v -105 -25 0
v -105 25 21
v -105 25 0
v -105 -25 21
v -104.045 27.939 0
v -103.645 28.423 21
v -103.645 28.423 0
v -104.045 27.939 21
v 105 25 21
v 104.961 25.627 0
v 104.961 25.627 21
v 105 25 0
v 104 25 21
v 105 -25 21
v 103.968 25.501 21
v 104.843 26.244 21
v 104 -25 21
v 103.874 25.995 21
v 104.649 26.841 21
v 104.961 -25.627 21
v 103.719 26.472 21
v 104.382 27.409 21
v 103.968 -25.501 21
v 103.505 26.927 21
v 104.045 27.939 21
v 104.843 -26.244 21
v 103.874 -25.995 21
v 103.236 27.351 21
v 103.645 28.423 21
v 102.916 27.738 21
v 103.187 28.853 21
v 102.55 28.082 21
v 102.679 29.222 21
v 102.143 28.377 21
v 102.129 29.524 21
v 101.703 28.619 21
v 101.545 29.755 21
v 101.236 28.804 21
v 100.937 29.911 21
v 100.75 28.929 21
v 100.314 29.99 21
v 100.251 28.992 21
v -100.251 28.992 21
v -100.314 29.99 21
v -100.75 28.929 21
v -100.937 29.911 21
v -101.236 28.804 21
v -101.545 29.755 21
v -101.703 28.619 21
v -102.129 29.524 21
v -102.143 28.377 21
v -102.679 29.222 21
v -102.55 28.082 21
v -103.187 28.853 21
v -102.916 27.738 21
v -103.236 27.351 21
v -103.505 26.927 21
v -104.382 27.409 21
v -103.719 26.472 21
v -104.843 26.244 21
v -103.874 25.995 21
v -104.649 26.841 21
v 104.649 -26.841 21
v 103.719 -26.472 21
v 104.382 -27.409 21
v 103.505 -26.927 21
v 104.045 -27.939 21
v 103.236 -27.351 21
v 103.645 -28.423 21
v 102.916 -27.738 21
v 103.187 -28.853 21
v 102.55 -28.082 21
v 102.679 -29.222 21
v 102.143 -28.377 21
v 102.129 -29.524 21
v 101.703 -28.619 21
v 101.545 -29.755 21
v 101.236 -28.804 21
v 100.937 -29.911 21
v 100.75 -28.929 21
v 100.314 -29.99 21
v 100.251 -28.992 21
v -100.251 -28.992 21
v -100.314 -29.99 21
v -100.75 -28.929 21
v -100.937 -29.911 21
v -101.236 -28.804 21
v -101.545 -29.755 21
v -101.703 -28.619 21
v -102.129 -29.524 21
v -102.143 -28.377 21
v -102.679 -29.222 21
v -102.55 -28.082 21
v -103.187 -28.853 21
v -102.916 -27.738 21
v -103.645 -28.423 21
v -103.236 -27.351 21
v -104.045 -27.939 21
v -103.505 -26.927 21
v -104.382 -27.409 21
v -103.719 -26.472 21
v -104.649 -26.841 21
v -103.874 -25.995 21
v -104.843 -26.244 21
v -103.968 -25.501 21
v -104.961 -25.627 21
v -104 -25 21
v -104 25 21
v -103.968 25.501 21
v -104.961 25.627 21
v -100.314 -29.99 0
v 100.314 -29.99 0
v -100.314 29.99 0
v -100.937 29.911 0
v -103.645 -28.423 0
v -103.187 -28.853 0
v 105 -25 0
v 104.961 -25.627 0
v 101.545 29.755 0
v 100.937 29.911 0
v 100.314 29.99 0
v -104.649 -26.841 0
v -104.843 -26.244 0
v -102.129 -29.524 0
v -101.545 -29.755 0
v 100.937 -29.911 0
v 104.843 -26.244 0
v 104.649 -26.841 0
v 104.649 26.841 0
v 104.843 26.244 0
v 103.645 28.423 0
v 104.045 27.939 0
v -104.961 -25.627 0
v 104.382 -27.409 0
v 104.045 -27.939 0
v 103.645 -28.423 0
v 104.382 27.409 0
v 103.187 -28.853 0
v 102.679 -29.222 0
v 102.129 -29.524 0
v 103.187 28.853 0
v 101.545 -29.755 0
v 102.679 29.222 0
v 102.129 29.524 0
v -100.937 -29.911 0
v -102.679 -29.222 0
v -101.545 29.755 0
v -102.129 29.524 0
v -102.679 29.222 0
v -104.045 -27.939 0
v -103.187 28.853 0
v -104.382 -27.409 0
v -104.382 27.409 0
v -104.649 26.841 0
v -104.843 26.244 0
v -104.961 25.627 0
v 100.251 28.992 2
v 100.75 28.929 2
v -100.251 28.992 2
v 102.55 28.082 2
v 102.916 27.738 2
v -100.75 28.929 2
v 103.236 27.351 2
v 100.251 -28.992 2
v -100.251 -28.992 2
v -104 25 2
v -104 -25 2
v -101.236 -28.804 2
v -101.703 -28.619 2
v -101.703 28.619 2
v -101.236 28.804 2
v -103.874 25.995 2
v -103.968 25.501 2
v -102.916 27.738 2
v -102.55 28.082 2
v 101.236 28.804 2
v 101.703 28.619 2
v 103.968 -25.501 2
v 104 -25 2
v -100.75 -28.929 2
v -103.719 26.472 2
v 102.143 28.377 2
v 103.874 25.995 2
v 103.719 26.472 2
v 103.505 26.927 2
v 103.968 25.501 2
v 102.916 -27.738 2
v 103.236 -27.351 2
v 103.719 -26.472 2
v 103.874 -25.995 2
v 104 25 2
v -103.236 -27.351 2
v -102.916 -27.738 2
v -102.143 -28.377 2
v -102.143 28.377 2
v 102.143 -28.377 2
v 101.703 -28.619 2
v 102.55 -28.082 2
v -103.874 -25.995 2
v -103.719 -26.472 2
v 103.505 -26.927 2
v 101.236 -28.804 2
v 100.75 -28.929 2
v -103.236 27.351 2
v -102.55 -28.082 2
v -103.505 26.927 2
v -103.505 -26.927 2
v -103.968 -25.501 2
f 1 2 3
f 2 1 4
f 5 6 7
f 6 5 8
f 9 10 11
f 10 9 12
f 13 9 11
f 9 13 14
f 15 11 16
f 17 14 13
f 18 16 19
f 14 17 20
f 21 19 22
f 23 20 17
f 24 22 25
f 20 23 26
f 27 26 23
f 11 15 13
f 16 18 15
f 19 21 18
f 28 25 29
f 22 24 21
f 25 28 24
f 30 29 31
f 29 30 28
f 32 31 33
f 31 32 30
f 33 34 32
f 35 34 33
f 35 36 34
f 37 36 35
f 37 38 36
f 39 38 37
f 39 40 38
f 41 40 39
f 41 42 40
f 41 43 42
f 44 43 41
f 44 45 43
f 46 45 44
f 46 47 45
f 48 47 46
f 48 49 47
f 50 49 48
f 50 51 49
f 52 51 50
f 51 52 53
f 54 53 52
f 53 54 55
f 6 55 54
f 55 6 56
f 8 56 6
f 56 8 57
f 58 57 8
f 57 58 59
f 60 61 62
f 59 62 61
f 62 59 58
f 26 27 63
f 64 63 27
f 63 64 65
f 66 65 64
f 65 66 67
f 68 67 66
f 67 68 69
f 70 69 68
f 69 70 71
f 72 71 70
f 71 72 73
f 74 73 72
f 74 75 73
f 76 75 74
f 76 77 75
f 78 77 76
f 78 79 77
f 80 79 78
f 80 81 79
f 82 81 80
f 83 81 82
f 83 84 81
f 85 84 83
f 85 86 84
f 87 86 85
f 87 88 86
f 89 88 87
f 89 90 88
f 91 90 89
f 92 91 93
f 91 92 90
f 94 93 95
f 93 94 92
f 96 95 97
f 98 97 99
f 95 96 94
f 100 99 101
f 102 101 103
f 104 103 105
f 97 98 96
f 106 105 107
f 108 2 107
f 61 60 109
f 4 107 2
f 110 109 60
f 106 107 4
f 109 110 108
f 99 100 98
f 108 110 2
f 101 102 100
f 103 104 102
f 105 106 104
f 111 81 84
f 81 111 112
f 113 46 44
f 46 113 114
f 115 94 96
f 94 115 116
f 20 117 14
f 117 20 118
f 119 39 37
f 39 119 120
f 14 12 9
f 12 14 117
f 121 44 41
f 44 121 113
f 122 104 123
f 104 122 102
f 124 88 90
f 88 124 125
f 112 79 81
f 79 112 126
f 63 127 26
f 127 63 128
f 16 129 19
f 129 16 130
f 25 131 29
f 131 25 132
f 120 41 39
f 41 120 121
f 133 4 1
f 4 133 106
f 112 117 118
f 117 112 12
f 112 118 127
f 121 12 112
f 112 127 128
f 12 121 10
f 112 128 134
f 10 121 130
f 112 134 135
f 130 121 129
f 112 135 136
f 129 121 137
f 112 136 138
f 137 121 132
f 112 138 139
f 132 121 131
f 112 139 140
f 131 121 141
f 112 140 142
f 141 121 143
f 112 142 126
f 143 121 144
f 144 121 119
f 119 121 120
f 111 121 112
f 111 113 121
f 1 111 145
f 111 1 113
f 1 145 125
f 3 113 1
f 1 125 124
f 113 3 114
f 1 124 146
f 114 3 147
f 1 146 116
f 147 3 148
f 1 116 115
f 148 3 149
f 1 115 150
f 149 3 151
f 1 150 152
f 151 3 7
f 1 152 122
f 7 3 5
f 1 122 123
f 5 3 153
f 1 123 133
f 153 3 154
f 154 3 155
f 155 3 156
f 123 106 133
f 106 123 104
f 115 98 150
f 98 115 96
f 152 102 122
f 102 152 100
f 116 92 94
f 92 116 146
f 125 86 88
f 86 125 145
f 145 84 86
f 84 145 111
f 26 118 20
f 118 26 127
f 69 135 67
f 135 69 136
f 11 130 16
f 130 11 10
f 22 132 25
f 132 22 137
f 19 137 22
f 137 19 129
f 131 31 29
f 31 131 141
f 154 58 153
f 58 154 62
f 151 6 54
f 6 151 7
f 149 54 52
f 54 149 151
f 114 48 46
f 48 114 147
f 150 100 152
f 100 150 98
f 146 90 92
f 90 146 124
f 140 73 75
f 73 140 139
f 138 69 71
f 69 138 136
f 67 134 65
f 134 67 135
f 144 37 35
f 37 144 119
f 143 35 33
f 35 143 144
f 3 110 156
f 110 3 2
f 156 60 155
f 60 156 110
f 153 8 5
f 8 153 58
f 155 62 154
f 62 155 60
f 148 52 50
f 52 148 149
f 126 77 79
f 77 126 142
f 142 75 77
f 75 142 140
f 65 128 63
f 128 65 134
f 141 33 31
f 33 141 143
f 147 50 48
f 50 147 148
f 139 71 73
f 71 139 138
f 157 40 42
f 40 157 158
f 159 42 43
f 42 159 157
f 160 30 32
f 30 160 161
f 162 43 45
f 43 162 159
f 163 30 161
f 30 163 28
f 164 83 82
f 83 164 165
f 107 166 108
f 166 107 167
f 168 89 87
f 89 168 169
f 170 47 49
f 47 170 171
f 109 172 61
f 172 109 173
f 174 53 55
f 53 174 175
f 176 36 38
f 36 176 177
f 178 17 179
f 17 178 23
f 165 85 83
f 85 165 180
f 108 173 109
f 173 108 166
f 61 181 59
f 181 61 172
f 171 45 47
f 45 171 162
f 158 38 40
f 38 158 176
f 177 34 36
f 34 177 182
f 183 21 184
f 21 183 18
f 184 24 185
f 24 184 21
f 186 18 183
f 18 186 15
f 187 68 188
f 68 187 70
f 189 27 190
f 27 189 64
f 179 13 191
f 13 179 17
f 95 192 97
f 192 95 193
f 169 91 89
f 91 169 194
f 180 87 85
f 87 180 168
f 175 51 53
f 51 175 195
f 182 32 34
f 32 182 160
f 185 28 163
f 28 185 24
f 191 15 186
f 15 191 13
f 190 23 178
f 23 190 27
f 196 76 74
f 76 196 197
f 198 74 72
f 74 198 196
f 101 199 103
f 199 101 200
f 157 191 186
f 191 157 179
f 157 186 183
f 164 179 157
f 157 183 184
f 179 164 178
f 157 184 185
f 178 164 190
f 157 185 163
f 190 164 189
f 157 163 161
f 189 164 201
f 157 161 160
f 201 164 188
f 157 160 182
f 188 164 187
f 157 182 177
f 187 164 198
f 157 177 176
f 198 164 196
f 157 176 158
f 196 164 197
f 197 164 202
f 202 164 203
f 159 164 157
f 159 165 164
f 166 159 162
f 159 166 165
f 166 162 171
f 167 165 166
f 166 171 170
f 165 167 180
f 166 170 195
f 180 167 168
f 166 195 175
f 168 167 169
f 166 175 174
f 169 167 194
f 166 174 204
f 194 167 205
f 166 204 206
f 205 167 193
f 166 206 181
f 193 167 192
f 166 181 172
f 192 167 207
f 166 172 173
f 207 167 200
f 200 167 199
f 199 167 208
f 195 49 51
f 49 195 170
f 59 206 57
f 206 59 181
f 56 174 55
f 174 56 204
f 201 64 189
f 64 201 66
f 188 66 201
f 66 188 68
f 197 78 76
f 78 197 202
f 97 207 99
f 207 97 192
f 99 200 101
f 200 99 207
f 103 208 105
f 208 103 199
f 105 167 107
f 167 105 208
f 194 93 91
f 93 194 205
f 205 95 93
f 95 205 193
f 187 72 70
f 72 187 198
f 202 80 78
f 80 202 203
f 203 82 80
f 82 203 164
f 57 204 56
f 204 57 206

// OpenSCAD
$fn = 50;


difference() {
	union() {
		hull() {
			translate(v = [-100.0000000000, 25.0000000000, 0]) {
				cylinder(h = 21, r = 5);
			}
			translate(v = [100.0000000000, 25.0000000000, 0]) {
				cylinder(h = 21, r = 5);
			}
			translate(v = [-100.0000000000, -25.0000000000, 0]) {
				cylinder(h = 21, r = 5);
			}
			translate(v = [100.0000000000, -25.0000000000, 0]) {
				cylinder(h = 21, r = 5);
			}
		}
	}
	union() {
		translate(v = [0, 0, 2]) {
			hull() {
				translate(v = [-100.0000000000, 25.0000000000, 0]) {
					cylinder(h = 19, r = 4);
				}
				translate(v = [100.0000000000, 25.0000000000, 0]) {
					cylinder(h = 19, r = 4);
				}
				translate(v = [-100.0000000000, -25.0000000000, 0]) {
					cylinder(h = 19, r = 4);
				}
				translate(v = [100.0000000000, -25.0000000000, 0]) {
					cylinder(h = 19, r = 4);
				}
			}
		}
	}
}
